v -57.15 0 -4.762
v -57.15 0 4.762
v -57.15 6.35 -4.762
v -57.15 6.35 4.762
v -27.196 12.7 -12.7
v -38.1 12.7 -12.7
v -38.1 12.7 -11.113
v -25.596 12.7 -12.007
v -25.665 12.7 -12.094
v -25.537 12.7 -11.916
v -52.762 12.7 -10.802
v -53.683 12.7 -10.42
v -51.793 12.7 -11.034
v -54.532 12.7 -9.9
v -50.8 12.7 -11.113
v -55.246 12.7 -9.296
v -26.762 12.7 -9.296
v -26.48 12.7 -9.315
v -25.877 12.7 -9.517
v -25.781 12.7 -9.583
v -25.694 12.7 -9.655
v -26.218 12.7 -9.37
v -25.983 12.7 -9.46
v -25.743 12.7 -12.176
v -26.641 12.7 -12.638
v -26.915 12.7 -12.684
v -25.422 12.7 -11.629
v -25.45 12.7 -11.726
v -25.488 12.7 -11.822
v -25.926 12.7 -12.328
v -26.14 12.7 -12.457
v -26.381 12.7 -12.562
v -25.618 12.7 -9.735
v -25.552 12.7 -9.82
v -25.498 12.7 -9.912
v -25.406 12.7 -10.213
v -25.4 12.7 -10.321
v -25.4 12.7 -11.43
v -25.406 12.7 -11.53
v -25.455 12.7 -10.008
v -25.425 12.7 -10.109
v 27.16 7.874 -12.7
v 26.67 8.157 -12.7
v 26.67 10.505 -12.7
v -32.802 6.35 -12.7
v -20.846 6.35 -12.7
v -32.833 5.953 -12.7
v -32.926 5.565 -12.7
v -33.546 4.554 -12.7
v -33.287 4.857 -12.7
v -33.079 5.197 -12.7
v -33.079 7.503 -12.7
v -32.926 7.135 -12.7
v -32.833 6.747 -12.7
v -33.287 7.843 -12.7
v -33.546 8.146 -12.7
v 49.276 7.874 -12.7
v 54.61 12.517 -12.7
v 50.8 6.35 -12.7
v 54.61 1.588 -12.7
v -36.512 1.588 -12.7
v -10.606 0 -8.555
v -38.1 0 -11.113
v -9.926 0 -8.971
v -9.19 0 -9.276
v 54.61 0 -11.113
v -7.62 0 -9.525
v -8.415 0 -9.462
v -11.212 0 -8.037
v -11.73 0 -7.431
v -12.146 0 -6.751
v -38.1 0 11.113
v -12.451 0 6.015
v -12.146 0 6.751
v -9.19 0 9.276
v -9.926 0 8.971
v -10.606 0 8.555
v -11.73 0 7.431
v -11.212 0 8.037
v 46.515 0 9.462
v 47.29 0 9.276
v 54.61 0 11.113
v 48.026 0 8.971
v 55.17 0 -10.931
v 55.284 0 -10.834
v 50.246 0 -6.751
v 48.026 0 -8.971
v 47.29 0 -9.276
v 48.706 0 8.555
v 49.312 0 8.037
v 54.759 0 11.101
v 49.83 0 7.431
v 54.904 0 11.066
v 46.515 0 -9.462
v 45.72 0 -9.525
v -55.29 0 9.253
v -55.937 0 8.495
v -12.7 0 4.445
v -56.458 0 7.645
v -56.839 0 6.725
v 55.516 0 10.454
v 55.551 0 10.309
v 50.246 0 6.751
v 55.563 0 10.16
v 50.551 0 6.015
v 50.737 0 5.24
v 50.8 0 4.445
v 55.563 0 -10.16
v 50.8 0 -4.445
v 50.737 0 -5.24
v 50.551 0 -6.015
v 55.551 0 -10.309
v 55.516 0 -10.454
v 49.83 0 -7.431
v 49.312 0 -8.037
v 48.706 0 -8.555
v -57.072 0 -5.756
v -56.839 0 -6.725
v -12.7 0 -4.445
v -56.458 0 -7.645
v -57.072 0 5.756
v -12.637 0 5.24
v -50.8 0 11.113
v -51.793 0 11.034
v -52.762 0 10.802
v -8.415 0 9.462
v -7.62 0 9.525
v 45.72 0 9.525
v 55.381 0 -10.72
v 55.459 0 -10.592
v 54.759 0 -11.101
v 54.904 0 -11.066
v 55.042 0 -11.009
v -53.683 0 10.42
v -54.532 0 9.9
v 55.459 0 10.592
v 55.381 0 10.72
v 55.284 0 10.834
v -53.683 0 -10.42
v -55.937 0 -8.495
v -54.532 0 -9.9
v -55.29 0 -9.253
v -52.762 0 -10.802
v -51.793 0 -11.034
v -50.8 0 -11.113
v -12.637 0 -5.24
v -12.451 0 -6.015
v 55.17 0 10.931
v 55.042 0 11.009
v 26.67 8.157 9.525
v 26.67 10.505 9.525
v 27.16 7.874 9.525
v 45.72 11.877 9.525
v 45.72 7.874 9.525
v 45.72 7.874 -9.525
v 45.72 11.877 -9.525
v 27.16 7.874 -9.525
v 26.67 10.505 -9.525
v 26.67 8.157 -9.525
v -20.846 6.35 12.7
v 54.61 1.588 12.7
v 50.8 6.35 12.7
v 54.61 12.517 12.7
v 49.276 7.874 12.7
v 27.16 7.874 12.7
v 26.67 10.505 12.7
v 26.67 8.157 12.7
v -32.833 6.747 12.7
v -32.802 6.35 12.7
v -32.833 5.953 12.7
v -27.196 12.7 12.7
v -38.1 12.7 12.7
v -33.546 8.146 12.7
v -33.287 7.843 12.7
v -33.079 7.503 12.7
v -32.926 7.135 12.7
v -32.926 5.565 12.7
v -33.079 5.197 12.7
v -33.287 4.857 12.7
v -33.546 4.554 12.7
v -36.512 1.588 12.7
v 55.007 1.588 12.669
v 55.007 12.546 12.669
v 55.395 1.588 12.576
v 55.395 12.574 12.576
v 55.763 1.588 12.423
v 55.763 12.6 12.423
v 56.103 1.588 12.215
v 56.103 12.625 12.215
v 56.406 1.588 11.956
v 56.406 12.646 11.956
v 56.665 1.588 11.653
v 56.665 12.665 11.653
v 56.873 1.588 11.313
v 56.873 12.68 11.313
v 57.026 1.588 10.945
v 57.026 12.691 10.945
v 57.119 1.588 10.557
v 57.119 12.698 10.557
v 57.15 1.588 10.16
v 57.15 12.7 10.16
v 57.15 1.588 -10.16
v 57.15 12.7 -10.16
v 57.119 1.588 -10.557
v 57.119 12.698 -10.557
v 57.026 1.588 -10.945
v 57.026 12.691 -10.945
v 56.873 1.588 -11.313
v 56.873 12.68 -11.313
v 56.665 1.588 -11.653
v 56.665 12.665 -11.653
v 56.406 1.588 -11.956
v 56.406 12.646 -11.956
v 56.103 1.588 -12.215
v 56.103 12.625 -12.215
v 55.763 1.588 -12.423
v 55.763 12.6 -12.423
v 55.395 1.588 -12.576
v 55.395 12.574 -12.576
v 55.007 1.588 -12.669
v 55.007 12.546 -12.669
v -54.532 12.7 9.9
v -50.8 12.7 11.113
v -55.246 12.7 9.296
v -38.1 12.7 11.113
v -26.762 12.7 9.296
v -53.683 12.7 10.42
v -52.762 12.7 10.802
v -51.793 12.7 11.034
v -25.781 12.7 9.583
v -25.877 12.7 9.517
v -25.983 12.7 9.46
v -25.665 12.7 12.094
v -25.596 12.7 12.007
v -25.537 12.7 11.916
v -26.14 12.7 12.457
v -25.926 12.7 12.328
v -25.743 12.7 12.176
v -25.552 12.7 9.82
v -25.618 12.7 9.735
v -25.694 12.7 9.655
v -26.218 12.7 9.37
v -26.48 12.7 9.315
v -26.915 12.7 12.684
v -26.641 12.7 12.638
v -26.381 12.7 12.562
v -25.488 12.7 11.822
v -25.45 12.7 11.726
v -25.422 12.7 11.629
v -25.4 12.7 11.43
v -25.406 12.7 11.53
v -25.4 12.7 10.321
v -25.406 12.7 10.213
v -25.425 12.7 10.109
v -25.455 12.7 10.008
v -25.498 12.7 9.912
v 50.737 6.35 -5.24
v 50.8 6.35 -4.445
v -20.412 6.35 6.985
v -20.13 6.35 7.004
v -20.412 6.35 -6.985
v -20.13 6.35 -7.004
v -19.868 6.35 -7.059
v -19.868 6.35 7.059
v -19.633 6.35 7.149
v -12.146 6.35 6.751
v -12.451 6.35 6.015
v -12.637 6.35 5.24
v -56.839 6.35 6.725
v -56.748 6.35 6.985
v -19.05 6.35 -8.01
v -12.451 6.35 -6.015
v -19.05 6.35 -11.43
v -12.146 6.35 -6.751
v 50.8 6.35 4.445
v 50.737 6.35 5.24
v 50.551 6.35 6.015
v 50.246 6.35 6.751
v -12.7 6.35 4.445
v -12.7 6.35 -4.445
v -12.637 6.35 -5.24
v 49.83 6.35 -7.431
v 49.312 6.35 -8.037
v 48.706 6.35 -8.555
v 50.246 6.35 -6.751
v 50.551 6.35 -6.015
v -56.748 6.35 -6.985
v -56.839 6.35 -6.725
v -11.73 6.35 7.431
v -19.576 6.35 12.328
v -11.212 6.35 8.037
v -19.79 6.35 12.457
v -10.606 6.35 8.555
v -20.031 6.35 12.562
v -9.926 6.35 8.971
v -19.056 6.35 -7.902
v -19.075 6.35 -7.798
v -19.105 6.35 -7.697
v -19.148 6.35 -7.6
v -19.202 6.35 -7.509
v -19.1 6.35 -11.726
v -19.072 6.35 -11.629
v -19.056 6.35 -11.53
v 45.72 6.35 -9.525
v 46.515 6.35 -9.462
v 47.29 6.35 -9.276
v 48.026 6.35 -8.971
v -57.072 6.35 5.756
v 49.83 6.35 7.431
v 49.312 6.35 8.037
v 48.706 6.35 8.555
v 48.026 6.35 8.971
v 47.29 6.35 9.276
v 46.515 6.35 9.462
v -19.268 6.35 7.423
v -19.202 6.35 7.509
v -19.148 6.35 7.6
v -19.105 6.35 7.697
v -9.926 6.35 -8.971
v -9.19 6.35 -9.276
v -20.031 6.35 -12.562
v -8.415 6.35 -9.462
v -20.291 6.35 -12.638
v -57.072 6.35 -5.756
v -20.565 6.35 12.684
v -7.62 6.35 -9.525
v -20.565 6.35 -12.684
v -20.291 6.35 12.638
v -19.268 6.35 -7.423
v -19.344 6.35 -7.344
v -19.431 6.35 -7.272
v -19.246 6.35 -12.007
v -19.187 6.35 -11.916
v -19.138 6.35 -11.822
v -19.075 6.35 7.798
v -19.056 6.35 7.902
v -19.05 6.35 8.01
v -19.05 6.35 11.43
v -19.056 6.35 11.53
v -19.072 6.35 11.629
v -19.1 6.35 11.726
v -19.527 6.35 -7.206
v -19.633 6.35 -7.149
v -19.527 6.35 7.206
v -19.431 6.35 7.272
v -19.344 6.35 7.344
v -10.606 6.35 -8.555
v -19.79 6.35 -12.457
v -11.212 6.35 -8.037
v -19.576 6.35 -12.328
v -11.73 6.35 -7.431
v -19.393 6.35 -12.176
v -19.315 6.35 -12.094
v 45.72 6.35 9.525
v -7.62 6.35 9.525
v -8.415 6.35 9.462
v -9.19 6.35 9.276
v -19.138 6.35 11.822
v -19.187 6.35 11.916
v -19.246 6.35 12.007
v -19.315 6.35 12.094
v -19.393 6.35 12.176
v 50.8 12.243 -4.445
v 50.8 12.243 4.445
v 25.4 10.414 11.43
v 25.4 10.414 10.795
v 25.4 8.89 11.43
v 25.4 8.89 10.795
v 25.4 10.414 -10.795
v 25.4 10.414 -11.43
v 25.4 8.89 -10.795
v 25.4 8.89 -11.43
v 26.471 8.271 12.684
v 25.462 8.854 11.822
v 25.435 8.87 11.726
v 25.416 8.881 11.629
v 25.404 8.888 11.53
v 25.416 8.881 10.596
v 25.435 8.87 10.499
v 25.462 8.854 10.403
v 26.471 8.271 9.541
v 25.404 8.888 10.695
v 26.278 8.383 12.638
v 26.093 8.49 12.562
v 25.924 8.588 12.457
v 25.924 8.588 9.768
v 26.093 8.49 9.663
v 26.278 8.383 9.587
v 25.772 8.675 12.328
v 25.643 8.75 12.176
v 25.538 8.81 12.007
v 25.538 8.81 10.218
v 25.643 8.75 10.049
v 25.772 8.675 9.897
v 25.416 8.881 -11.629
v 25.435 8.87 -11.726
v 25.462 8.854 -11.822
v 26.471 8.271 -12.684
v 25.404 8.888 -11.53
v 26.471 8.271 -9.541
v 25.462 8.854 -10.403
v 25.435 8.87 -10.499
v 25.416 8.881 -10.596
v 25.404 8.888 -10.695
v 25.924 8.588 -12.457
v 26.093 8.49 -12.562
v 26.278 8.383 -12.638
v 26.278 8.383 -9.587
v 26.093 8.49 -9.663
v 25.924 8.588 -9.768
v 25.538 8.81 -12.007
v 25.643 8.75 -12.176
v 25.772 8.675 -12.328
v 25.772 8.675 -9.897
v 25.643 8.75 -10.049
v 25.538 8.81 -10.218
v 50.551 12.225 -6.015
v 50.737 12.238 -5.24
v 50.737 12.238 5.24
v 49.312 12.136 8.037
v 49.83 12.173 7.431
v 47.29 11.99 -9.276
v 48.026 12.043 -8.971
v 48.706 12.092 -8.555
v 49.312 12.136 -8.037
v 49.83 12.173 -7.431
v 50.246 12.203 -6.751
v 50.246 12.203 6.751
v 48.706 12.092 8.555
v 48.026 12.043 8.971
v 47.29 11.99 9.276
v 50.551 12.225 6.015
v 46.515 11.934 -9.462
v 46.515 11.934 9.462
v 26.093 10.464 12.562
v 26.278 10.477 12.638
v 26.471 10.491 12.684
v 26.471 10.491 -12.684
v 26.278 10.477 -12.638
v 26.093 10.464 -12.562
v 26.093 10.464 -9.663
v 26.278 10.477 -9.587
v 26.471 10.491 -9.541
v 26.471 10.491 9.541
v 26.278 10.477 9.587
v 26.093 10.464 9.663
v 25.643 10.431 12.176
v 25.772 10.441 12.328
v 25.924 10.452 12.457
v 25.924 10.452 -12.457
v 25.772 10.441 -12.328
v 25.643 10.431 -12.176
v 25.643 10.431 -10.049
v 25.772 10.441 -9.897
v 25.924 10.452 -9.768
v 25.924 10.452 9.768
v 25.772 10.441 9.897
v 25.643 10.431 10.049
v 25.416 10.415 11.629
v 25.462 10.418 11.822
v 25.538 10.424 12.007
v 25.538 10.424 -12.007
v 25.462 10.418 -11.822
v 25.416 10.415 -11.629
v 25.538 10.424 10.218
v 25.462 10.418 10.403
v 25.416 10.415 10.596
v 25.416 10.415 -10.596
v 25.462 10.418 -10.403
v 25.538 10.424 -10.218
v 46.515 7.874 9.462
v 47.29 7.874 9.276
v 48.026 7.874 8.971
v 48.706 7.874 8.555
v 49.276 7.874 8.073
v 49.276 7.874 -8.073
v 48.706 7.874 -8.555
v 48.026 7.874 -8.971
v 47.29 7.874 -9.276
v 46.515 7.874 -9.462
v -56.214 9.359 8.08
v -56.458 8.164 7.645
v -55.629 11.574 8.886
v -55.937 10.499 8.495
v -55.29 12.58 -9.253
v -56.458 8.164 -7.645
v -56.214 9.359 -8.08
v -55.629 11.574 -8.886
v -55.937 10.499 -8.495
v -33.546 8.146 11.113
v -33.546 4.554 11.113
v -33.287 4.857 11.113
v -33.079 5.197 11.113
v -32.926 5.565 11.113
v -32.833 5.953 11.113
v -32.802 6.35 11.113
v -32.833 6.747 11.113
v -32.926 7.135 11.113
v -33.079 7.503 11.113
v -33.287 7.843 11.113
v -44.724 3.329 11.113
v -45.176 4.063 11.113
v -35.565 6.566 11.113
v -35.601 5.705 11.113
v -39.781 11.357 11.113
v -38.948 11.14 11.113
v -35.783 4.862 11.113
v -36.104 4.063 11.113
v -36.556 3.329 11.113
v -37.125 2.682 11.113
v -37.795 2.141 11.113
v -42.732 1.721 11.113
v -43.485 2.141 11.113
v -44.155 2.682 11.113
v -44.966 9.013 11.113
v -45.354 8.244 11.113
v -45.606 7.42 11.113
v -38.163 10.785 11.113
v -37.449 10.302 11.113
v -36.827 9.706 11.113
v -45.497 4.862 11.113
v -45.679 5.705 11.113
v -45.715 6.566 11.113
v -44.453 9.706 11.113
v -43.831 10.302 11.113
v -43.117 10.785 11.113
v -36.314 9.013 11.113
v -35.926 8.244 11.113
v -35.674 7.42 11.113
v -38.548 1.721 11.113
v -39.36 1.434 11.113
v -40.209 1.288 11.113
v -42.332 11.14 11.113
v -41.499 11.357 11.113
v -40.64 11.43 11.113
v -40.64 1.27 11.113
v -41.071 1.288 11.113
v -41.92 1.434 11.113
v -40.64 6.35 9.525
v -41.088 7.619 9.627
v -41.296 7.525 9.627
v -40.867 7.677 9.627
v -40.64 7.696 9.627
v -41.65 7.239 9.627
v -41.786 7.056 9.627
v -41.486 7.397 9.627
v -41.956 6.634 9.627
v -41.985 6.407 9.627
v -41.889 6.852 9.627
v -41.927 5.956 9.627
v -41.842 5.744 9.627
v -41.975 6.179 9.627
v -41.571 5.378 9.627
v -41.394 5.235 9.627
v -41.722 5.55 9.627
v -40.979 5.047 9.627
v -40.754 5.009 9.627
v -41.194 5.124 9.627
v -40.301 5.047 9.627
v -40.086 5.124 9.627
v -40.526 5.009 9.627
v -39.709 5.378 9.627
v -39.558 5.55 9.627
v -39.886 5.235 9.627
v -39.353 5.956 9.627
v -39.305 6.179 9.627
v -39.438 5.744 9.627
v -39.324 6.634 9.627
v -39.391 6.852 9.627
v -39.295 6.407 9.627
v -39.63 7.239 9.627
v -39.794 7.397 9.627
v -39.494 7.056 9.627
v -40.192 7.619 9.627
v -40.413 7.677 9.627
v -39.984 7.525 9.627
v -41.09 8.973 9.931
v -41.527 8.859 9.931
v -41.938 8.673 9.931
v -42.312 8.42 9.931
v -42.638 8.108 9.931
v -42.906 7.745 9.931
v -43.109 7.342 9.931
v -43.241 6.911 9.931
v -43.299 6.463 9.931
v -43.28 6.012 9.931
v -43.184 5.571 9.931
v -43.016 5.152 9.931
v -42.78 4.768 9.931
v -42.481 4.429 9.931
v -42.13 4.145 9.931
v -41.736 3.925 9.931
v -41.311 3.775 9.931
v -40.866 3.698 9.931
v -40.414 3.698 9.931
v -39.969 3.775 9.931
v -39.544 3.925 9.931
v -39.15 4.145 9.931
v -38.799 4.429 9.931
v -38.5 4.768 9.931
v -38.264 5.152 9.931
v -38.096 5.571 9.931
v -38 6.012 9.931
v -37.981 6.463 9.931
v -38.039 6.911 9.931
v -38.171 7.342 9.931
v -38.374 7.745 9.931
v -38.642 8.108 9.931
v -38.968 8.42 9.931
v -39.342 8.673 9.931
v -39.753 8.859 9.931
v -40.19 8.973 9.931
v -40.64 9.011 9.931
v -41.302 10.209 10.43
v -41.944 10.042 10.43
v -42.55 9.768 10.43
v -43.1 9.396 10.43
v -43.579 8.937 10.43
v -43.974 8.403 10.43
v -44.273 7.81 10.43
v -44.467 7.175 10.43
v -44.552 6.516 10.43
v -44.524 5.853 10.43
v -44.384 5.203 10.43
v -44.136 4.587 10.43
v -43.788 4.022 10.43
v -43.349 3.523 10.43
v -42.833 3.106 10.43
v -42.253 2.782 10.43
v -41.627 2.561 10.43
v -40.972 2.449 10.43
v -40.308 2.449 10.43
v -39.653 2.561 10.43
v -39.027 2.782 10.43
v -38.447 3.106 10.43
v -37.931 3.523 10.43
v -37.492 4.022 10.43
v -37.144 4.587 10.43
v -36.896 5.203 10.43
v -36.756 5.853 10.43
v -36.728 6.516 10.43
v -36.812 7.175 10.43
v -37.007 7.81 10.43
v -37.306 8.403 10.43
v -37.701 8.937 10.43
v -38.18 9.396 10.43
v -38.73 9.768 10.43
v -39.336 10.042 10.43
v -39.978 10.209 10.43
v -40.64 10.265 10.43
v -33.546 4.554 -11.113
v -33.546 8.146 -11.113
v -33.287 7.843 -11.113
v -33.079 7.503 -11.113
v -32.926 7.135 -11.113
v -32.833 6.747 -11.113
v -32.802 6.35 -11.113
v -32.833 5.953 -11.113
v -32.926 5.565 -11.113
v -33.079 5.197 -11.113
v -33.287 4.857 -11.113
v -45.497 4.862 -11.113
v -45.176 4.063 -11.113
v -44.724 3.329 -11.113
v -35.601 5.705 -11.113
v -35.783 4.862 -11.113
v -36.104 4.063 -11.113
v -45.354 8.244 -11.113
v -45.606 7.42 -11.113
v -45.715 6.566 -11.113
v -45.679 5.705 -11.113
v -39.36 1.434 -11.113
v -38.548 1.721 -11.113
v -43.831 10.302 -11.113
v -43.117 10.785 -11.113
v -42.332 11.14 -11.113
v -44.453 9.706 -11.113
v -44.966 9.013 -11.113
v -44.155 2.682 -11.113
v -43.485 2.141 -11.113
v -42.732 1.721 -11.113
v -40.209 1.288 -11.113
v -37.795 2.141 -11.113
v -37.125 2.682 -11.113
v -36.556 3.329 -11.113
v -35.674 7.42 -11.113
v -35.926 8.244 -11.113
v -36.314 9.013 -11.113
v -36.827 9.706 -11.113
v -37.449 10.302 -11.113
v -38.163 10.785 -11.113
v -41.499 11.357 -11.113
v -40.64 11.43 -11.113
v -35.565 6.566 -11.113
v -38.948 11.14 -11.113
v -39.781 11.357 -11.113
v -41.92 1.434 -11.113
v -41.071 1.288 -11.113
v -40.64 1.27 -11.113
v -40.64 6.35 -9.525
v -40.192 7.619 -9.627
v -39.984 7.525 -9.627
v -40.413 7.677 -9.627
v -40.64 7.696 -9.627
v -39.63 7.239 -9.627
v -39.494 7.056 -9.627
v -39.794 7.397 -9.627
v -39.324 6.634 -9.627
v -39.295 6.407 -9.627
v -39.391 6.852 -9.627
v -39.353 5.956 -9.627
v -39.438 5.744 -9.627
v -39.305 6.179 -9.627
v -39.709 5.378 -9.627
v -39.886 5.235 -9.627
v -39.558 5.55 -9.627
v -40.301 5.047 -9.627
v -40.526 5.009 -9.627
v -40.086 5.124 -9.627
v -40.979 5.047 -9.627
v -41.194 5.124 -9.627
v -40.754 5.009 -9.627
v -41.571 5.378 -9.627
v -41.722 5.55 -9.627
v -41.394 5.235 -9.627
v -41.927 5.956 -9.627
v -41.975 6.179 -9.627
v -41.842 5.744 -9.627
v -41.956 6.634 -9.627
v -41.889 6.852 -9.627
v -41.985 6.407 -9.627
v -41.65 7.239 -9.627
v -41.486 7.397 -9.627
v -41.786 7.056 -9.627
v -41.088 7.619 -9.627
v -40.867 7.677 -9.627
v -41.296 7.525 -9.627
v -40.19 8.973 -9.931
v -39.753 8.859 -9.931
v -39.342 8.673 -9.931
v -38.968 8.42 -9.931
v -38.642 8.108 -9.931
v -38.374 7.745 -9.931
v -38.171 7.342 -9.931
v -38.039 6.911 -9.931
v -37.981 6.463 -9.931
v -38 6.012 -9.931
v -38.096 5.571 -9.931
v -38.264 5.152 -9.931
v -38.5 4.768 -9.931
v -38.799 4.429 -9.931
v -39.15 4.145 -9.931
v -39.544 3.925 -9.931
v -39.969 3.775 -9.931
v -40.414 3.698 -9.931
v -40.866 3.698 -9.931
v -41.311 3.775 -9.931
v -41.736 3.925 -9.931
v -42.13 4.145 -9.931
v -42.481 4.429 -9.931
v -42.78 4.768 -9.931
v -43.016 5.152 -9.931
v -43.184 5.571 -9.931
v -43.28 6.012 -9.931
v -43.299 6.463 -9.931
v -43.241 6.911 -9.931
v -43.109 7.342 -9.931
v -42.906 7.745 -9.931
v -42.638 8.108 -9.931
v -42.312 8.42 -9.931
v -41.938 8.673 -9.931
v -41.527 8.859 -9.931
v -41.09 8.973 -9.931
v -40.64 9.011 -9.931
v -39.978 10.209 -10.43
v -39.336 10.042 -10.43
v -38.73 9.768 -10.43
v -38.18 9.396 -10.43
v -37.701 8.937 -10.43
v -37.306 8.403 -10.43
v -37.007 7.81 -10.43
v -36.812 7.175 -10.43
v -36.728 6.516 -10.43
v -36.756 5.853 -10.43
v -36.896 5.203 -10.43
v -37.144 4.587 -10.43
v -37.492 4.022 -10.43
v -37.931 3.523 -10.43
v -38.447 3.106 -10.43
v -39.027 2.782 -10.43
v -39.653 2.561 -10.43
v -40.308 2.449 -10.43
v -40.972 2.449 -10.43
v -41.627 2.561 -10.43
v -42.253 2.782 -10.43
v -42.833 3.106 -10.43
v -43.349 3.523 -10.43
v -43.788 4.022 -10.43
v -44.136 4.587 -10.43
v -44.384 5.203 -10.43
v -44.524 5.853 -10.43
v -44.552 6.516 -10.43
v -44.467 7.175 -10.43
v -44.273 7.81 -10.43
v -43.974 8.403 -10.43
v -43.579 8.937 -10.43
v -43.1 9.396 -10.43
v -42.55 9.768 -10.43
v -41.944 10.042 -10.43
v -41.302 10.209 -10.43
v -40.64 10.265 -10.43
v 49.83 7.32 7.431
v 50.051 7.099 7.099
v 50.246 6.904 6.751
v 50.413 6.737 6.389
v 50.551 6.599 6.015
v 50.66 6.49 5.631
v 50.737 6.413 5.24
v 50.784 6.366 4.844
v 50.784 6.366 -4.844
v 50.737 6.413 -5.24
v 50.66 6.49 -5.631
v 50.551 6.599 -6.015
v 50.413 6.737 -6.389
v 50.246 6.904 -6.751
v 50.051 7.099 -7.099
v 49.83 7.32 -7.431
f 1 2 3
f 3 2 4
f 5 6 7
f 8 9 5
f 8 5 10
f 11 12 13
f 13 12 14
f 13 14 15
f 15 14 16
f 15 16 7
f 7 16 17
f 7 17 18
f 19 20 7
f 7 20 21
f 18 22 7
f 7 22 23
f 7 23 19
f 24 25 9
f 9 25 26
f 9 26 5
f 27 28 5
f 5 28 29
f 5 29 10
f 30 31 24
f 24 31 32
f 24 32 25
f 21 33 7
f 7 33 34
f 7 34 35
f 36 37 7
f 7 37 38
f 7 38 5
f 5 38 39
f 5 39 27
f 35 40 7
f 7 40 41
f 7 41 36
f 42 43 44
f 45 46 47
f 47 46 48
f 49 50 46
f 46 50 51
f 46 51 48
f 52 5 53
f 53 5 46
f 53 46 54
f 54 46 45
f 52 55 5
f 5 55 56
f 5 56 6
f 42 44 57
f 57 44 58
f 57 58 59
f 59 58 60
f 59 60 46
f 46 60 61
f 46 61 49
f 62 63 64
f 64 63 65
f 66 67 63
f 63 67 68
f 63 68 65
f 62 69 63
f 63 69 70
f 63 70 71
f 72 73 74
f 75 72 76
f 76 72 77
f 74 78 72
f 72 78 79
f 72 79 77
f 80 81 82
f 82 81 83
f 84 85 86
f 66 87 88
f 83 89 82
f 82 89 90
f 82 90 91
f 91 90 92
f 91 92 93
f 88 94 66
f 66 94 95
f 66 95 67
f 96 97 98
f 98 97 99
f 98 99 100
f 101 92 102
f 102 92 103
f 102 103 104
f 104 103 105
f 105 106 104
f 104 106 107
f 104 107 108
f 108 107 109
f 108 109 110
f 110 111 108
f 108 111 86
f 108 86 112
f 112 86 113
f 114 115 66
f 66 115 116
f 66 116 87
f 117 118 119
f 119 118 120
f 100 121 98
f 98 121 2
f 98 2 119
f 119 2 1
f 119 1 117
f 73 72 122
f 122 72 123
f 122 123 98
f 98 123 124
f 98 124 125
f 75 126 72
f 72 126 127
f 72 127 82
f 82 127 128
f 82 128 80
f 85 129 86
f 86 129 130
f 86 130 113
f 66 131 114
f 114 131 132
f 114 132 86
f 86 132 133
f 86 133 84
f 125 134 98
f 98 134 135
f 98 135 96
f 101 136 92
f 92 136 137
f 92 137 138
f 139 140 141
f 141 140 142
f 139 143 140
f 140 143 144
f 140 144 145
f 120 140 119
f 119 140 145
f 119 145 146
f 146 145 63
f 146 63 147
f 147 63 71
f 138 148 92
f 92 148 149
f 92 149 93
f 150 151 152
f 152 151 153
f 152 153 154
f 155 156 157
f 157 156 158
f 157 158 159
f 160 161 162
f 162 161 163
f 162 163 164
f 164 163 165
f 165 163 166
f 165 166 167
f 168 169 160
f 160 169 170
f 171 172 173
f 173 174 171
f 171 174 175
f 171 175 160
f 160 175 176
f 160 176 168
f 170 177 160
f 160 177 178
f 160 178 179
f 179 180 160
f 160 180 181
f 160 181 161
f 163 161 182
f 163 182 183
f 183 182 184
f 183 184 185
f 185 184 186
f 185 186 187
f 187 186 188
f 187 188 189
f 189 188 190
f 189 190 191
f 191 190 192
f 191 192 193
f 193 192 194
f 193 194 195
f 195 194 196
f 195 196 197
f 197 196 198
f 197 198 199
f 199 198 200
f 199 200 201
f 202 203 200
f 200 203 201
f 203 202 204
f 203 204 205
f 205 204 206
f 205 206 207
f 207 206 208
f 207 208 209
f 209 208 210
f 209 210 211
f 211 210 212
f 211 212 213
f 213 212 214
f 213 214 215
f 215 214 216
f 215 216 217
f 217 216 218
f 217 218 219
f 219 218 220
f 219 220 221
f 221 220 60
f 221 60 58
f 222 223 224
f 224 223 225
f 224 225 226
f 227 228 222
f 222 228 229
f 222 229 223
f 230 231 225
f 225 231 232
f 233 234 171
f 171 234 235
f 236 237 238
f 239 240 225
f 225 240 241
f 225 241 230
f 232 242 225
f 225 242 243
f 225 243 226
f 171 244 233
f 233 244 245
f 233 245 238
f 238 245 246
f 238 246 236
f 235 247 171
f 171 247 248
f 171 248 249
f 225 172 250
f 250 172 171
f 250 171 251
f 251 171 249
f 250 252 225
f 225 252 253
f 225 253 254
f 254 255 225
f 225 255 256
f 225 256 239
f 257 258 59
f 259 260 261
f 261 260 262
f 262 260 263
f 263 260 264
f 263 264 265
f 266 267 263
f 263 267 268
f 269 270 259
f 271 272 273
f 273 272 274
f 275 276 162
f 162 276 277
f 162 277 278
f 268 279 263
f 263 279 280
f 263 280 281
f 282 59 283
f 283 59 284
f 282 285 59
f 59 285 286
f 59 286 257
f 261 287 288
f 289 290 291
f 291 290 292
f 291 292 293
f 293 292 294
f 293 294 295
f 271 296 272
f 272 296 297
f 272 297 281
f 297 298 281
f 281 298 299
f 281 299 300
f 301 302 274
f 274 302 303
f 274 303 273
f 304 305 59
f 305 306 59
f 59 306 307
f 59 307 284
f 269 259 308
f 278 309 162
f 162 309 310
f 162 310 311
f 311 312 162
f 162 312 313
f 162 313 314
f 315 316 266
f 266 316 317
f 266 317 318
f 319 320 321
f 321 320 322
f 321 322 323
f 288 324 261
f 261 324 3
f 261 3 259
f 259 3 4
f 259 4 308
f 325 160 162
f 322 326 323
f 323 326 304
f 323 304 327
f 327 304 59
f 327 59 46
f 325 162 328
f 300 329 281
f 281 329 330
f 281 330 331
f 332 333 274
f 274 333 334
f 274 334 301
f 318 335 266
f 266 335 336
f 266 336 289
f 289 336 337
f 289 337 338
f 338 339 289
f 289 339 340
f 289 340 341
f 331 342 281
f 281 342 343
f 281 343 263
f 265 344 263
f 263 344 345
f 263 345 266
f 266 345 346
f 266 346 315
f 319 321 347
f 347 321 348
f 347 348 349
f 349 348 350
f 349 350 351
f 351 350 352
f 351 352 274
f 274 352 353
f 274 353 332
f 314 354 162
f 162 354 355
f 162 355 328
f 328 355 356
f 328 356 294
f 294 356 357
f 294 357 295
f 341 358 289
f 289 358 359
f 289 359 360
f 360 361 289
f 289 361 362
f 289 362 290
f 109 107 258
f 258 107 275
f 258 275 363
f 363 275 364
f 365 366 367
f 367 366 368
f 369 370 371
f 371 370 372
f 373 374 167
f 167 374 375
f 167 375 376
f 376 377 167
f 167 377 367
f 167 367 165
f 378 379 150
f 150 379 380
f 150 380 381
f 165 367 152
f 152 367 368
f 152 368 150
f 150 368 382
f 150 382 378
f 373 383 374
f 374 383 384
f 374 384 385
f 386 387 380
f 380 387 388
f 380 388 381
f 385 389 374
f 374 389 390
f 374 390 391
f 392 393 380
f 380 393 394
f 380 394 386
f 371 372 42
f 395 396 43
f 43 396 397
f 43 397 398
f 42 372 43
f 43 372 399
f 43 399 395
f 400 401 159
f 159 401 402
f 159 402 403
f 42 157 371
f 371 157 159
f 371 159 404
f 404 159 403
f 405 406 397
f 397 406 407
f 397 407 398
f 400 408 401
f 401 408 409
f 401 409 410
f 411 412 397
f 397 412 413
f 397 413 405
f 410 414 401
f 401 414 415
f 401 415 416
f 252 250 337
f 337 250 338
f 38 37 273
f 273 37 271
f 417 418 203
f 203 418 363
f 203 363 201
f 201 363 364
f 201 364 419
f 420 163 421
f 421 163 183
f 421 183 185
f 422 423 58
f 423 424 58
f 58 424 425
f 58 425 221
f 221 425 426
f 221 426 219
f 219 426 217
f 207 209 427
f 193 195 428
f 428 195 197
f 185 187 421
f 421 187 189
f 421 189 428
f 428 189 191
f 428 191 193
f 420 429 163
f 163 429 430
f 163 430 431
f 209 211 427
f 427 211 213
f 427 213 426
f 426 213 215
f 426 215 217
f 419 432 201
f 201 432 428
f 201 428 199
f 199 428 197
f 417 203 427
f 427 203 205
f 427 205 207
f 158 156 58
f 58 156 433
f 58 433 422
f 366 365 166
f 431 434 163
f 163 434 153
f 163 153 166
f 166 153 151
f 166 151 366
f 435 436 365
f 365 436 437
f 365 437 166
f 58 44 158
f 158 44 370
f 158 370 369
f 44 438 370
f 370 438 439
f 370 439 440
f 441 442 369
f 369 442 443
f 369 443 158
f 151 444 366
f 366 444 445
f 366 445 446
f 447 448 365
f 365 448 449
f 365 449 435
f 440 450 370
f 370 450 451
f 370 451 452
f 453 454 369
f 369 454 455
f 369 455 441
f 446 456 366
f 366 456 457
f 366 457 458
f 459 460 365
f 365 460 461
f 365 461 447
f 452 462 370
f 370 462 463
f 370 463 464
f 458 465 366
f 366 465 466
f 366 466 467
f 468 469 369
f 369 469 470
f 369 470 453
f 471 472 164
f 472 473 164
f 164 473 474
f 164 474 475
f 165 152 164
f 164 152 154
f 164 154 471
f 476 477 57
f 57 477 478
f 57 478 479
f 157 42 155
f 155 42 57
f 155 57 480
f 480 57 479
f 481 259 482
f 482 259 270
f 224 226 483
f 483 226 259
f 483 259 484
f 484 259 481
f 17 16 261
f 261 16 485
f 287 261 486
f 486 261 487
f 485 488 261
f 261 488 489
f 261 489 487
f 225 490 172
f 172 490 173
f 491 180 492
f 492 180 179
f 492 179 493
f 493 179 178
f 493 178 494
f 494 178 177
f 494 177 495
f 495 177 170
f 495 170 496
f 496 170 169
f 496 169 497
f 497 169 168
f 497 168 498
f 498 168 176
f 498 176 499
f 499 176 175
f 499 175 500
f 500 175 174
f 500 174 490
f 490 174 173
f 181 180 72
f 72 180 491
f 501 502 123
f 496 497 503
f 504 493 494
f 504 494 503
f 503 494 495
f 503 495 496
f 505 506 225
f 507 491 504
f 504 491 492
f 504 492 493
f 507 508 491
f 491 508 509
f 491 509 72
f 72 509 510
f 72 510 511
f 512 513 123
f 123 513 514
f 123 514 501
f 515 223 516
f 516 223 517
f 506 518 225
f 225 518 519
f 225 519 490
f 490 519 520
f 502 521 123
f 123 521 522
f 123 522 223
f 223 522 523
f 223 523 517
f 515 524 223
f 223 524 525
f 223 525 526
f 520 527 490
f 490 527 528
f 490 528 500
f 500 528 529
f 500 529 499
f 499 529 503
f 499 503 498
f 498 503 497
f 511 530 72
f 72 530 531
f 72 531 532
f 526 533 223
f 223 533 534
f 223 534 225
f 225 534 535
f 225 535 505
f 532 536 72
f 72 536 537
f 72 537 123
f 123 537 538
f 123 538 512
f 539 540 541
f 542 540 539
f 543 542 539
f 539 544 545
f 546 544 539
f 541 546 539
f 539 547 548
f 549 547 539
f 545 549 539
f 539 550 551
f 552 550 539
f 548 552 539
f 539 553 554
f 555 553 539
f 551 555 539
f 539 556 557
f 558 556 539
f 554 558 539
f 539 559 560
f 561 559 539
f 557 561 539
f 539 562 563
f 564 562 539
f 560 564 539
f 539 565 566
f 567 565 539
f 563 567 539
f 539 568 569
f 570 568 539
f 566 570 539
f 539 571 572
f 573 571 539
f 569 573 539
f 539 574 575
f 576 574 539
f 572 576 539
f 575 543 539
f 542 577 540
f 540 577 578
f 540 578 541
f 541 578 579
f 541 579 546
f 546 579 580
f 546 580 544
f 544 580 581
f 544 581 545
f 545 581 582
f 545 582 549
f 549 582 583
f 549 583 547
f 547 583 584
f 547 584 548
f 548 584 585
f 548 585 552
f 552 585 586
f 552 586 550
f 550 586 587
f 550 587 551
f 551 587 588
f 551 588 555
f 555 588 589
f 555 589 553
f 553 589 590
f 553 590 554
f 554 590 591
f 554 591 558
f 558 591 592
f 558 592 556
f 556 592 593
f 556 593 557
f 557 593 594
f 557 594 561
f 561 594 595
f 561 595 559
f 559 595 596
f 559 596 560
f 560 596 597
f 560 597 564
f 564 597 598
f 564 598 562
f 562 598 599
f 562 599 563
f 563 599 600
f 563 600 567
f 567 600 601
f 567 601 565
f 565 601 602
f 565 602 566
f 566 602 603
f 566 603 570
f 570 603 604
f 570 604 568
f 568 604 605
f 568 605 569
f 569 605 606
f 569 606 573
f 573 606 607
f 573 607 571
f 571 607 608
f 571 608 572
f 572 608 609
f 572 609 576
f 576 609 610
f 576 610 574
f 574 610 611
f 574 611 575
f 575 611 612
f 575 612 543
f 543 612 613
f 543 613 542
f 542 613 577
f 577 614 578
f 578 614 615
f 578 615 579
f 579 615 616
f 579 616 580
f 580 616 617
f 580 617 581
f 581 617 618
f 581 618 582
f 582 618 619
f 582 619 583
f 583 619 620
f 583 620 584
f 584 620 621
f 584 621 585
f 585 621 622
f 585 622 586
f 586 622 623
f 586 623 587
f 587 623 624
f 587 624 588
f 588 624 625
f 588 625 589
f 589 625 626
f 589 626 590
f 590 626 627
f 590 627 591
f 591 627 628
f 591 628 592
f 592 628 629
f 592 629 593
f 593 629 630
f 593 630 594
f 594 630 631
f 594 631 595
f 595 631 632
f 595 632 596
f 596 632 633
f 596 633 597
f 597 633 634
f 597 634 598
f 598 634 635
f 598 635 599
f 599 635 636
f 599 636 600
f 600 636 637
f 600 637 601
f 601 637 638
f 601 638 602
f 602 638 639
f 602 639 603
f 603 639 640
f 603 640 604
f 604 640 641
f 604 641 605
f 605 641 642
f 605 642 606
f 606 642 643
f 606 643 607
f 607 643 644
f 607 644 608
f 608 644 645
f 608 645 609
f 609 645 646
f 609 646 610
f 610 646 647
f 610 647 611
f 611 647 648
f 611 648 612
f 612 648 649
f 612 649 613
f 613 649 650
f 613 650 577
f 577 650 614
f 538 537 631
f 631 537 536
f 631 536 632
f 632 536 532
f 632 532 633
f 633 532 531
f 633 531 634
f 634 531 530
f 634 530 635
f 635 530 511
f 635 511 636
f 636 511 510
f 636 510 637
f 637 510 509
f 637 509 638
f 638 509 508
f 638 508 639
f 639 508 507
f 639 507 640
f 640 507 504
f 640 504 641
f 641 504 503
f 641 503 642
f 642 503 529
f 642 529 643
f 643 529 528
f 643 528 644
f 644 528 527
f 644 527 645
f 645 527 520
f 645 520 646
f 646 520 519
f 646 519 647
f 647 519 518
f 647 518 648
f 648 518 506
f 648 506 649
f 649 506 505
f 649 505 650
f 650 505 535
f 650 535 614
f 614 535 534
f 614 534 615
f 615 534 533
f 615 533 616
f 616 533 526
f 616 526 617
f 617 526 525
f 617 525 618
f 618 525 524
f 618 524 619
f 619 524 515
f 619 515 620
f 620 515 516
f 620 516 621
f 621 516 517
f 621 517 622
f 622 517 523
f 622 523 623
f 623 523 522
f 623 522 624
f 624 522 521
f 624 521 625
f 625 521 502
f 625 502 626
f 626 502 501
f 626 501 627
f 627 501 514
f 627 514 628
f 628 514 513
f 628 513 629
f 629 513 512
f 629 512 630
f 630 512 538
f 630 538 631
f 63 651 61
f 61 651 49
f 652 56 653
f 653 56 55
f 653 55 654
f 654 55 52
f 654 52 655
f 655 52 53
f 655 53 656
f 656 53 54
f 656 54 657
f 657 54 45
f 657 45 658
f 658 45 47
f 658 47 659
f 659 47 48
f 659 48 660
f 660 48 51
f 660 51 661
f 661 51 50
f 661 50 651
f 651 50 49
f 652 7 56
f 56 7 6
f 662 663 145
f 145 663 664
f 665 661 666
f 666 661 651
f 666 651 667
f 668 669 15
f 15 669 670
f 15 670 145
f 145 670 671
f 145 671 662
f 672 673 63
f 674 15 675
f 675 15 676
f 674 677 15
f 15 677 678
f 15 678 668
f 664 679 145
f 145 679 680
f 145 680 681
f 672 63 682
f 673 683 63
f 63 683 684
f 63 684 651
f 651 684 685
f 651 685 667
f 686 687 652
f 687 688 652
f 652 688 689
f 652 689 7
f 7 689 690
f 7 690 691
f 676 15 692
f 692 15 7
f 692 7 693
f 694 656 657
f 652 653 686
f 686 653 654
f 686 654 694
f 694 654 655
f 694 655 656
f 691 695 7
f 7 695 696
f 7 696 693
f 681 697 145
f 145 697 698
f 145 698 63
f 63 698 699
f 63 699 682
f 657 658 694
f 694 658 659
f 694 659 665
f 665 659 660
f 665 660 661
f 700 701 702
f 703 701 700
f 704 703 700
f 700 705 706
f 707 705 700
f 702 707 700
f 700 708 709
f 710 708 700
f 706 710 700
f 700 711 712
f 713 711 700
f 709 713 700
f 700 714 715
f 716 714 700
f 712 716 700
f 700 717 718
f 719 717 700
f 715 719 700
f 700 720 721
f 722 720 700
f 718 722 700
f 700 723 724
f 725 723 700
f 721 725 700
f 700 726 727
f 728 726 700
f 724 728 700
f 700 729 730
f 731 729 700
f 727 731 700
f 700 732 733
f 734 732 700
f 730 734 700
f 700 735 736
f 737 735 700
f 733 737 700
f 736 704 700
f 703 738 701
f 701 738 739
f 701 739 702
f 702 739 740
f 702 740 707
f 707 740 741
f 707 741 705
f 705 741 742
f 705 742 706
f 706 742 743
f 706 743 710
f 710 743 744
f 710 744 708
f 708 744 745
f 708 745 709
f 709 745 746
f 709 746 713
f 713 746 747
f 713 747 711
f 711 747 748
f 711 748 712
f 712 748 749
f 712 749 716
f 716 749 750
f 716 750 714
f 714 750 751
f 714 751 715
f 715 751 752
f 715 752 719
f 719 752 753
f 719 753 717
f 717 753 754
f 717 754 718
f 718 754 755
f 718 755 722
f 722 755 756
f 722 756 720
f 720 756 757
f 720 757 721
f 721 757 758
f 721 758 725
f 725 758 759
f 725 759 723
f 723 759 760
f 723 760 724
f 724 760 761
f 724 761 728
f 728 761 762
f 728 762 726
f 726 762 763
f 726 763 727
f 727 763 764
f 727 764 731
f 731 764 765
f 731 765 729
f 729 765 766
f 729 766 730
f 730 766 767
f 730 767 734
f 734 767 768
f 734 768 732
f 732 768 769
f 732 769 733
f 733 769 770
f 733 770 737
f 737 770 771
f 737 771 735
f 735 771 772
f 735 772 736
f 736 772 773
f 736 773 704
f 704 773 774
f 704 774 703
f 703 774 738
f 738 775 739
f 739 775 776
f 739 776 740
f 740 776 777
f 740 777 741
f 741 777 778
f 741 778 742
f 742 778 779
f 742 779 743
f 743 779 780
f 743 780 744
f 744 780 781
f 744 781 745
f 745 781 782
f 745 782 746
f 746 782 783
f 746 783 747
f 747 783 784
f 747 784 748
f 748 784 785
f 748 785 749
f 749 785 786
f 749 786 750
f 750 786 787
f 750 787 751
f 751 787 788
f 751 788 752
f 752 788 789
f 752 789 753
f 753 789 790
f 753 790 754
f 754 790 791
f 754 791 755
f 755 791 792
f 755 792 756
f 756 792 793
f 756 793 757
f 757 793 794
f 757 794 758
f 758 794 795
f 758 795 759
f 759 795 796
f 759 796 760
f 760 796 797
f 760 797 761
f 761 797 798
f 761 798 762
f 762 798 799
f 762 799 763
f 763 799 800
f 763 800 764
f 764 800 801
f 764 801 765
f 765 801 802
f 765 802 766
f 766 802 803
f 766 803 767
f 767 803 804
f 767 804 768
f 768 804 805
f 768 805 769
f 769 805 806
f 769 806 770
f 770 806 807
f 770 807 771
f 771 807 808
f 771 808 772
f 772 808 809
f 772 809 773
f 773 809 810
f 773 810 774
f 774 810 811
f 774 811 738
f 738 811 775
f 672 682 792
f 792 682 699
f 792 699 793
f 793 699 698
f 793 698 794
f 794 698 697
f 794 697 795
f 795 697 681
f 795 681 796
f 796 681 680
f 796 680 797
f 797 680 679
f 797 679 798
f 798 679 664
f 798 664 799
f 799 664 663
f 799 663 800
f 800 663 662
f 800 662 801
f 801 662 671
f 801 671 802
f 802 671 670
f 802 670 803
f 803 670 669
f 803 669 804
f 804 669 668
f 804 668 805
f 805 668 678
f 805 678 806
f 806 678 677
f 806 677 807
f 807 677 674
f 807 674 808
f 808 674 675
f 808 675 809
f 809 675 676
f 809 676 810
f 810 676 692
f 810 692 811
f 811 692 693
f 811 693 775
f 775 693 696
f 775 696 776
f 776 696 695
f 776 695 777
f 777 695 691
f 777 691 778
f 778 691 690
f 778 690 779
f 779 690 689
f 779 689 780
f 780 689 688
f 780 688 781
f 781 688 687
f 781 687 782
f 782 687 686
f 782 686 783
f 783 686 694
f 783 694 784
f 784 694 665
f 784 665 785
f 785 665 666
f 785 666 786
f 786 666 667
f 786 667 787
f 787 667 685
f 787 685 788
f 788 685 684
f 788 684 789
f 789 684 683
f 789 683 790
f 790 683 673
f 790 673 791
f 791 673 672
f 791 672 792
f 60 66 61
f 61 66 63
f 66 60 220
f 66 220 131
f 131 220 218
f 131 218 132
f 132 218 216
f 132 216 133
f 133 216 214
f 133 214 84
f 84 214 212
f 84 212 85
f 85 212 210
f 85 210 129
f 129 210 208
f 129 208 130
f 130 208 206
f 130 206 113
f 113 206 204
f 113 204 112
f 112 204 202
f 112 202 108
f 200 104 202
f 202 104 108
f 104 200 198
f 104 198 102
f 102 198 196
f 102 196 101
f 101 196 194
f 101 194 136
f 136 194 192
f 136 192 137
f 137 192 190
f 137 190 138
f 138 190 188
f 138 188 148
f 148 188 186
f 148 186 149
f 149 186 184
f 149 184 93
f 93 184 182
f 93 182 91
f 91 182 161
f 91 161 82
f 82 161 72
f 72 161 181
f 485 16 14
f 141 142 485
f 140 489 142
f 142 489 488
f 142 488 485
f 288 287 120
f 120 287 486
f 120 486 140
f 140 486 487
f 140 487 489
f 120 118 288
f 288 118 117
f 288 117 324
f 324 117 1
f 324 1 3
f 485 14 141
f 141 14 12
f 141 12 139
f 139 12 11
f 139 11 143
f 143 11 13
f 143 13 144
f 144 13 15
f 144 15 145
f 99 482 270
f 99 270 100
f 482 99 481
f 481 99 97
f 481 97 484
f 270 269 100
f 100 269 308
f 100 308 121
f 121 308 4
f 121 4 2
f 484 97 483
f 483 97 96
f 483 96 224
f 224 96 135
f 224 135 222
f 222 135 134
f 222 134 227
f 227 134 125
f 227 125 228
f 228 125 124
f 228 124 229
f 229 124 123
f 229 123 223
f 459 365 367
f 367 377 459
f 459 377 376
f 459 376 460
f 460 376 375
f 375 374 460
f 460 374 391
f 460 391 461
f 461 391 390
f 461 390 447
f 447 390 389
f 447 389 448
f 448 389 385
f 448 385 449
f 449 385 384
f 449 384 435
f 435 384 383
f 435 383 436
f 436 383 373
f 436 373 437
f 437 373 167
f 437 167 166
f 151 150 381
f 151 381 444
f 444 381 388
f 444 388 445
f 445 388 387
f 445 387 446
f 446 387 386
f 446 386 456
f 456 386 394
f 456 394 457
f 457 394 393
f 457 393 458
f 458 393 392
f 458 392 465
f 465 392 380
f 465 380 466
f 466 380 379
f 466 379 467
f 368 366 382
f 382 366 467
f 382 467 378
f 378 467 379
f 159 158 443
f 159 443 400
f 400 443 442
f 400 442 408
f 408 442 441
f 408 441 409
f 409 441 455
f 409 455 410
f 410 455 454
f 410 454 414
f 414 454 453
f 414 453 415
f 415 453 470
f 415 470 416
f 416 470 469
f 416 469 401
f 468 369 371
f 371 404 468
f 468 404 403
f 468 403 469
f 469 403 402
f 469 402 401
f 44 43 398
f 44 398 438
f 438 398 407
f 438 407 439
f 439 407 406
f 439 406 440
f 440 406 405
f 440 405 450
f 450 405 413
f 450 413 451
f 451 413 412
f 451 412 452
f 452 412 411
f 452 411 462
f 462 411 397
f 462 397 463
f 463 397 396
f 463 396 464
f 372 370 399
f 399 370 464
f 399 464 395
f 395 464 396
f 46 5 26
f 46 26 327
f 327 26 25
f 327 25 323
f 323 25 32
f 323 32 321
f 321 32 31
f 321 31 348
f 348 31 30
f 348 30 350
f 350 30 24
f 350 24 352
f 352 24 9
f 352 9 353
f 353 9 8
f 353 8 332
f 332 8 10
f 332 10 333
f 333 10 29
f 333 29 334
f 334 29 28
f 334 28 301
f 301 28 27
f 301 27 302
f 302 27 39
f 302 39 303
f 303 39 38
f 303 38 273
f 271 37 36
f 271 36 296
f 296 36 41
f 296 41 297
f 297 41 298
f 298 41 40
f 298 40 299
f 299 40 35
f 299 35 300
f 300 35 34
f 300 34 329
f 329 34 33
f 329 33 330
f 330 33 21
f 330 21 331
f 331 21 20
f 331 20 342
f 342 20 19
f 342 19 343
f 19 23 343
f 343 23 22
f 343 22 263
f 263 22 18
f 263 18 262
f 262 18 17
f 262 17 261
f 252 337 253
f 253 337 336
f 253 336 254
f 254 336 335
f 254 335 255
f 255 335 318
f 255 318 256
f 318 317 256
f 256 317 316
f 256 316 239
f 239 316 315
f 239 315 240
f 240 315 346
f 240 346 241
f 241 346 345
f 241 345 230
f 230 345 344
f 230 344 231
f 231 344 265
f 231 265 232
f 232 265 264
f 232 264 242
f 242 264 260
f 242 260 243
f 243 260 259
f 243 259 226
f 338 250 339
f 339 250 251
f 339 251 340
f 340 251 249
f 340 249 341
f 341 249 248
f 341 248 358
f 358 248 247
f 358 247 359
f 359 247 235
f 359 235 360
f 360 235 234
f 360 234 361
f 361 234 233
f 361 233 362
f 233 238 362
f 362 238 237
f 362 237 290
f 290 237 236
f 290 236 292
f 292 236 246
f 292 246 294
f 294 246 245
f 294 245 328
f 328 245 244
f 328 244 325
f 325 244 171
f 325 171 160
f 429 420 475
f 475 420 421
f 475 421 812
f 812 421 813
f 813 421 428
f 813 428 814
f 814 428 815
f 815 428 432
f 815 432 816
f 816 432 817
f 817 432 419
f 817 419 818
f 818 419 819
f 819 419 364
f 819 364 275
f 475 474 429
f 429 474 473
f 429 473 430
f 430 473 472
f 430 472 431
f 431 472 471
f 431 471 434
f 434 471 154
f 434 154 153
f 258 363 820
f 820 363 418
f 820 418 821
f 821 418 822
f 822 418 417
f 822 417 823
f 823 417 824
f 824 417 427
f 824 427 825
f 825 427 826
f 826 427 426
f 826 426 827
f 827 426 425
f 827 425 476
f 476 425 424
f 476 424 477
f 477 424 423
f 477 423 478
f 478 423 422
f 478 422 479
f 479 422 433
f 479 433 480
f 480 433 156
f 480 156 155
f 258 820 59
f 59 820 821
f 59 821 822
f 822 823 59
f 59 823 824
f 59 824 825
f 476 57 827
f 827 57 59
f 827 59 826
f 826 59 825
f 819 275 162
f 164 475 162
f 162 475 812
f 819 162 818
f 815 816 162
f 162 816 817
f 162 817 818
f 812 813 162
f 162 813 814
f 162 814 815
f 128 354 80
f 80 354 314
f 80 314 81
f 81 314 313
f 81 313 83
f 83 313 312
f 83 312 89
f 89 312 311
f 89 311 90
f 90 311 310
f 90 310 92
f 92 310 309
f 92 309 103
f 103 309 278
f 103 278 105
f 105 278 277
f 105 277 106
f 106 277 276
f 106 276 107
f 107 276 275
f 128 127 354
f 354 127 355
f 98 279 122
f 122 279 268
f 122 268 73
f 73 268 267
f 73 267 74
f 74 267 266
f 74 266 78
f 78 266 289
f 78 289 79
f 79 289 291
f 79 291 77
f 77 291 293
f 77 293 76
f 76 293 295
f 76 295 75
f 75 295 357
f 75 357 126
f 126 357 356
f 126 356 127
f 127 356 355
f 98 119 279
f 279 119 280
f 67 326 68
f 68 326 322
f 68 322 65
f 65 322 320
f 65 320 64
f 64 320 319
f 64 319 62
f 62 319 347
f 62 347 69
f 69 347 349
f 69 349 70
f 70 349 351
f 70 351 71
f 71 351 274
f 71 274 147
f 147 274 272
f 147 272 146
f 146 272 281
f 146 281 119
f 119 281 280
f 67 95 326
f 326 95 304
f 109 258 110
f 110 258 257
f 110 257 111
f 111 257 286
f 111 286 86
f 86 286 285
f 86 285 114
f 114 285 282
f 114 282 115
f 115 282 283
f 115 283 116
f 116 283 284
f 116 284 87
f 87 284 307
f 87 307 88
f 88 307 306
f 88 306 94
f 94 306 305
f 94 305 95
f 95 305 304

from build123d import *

# Parameters (mm, degrees)
BOSS_EXTRUDE1_DEPTH = 12.7
SKETCH2_W           = 19.05
SKETCH2_H           = 6.35
CUT_EXTRUDE1_DEPTH  = 107.95
CUT_EXTRUDE2_DEPTH  = 64.816710194
CHAMFER1_SIZE       = 6.978592645
CHAMFER1_SIZE_2     = 2.54
CUT_EXTRUDE3_DEPTH  = 1.5875
CHAMFER3_SIZE       = 1.5875
FILLET1_R           = 6.35
FILLET2_R           = 1.27
FILLET3_R           = 5.08
CHAMFER4_SIZE       = 1.524
CUT_EXTRUDE4_DEPTH  = 59.887477446


# Some blends are built 0.0001 mm under size
with BuildPart() as part:
    # Sketch1 → Boss-Extrude1 (new body)
    with BuildSketch(Plane(origin=(0, 0, 0), x_dir=(1, 0, 0), z_dir=(0, 1, 0))):
        with BuildLine():
            Line((-50.8, 12.7), (-57.15, 12.7))
            Line((-57.15, 12.7), (-57.15, 6.35))
            Line((-57.15, 6.35), (-57.15, -6.35))
            Line((-57.15, -6.35), (-57.15, -12.7))
            Line((-57.15, -12.7), (-50.8, -12.7))
            Line((-50.8, -12.7), (54.61, -12.7))
            ThreePointArc((54.61, -12.7), (56.406051224, -11.956051224), (57.15, -10.16))
            Line((57.15, -10.16), (57.15, 10.16))
            ThreePointArc((57.15, 10.16), (56.406051224, 11.956051224), (54.61, 12.7))
            Line((54.61, 12.7), (-50.8, 12.7))
        make_face()
    extrude(amount=BOSS_EXTRUDE1_DEPTH)

    # Sketch2 → Cut-Extrude1 (cut)
    with BuildSketch(Plane.ZY.offset(57.15)):
        with Locations((0, 9.525)):
            Rectangle(SKETCH2_W, SKETCH2_H)
    extrude(amount=-CUT_EXTRUDE1_DEPTH, mode=Mode.SUBTRACT)

    # Sketch3 → Cut-Extrude2 (cut, through all)
    with BuildSketch(Plane.XY.offset(12.7)):
        Polygon((25.4, 10.414), (57.15, 12.7), (-25.4, 12.7), (-19.05, 6.35), (50.8, 6.35), (50.8, 7.874), (27.15976362, 7.874), (25.4, 8.89), align=None)
    extrude(amount=-CUT_EXTRUDE2_DEPTH, mode=Mode.SUBTRACT)

    # Chamfer1
    # the kernel refuses this chamfer: 6.978592645, 2.54 mm, written as the material it adds along each edge
    with BuildSketch(Plane(origin=(-57.15, 6.35, 9.525), x_dir=(0, 0.9999130865277316, 0.013184058198642549), z_dir=(1, 0, 0))) as chamfer1_piece_1_section:
        Polygon((CHAMFER1_SIZE * 0.999913086587, -CHAMFER1_SIZE * 0.0131840581994), (-CHAMFER1_SIZE_2 * 0.0131840581987, -CHAMFER1_SIZE_2 * 0.999913086528), (0, 0), align=None)
    chamfer1_piece_1 = extrude(amount=56.203828281, mode=Mode.PRIVATE)
    chamfer1_piece_1 = split(chamfer1_piece_1, bisect_by=Plane(origin=(-39.199121236, 12.7, 8.706690515), z_dir=(0, -1, 0)), keep=Keep.TOP, mode=Mode.PRIVATE)
    chamfer1_piece_1 = split(chamfer1_piece_1, bisect_by=Plane(origin=(-30.223681853, 17.523681853, 8.706690515), z_dir=(-0.7071067811865448, -0.7071067811865503, 0)), keep=Keep.TOP, mode=Mode.PRIVATE)
    add(chamfer1_piece_1)
    with BuildSketch(Plane(origin=(-57.15, 6.35, -9.525), x_dir=(0, -0.09904090225207035, 0.9950833631817466), z_dir=(1, 0, 0))) as chamfer1_piece_2_section:
        Polygon((CHAMFER1_SIZE_2 * 0.995083363182, -CHAMFER1_SIZE_2 * 0.099040902252), (-CHAMFER1_SIZE * 0.099040902258, -CHAMFER1_SIZE * 0.995083363241), (0, 0), align=None)
    chamfer1_piece_2 = extrude(amount=56.203828281, mode=Mode.PRIVATE)
    chamfer1_piece_2 = split(chamfer1_piece_2, bisect_by=Plane(origin=(-30.223681853, 17.523681853, -8.706690515), z_dir=(-0.7071067811865448, -0.7071067811865503, 0)), keep=Keep.TOP, mode=Mode.PRIVATE)
    chamfer1_piece_2 = split(chamfer1_piece_2, bisect_by=Plane(origin=(-39.199121236, 12.7, -8.706690515), z_dir=(0, -1, 0)), keep=Keep.TOP, mode=Mode.PRIVATE)
    add(chamfer1_piece_2)

    # Sketch4 → Cut-Extrude3 (cut)
    with BuildSketch(Plane.XY.offset(12.7)):
        with BuildLine():
            Line((-57.15, 12.7), (-57.15, 0))
            Line((-57.15, 0), (-38.1, 0))
            Line((-38.1, 0), (-33.546051224, 4.553948776))
            ThreePointArc((-33.546051224, 4.553948776), (-32.802102448, 6.35), (-33.546051224, 8.146051224))
            Line((-33.546051224, 8.146051224), (-38.1, 12.7))
            Line((-38.1, 12.7), (-57.15, 12.7))
        make_face()
    cut_extrude3 = extrude(amount=-CUT_EXTRUDE3_DEPTH, mode=Mode.SUBTRACT)

    # Sketch6 → Cut-Revolve1 (revolve, cut)
    with BuildSketch(Plane.ZY.offset(40.64)):
        with BuildLine():
            Line((11.1125, 6.35), (11.1125, 11.43))
            ThreePointArc((11.1125, 11.43), (9.931118256, 9.01113492), (9.525, 6.35))
            Line((9.525, 6.35), (11.1125, 6.35))
        make_face()
    cut_revolve1 = revolve(axis=Axis((-40.64, 6.35, 12.7), (0, 0, -1)), mode=Mode.SUBTRACT)

    # Mirror1: Cut-Extrude3, Cut-Revolve1 across plane
    add(cut_extrude3.mirror(Plane(origin=(0, 0, 0), x_dir=(1, 0, 0), z_dir=(0, 0, -1))), mode=Mode.SUBTRACT)
    add(cut_revolve1.mirror(Plane(origin=(0, 0, 0), x_dir=(1, 0, 0), z_dir=(0, 0, -1))), mode=Mode.SUBTRACT)

    # Chamfer3
    chamfer3_edges = [part.edges().sort_by_distance(p)[0] for p in [
        (8.255, 0, 12.7),
        (56.406051224, 0, 11.956051224),
        (57.15, 0, 0),
        (56.406051224, 0, -11.956051224),
        (8.255, 0, -12.7),
    ]]
    chamfer(chamfer3_edges, length=CHAMFER3_SIZE)

    # Fillet1
    fillet1_edges = [part.edges().sort_by_distance(p)[0] for p in [
        (-57.15, 6.35, -11.1125),
        (-57.15, 6.35, 11.1125),
    ]]
    fillet(fillet1_edges, radius=FILLET1_R)

    # Fillet2
    fillet2_edges = [part.edges().sort_by_distance(p)[0] for p in [
        (-22.225, 9.525, 8.140605494),
        (-22.225, 9.525, -8.140605494),
        (25.4, 9.652, -9.525),
        (-22.225, 9.525, 12.7),
        (25.4, 9.652, 12.7),
        (25.4, 9.652, 9.525),
        (25.4, 9.652, -12.7),
        (-22.225, 9.525, -12.7),
    ]]
    fillet(fillet2_edges, radius=FILLET2_R)

    # Fillet3
    fillet3_edges = [part.edges().sort_by_distance(p)[0] for p in [
        (50.8, 10.0584, -9.525),
        (50.8, 10.0584, 9.525),
    ]]
    fillet(fillet3_edges, radius=FILLET3_R)

    # Chamfer4
    chamfer4_edges = [part.edges().sort_by_distance(p)[0] for p in [
        (50.8, 7.874, -8.5725),
        (50.8, 7.874, 8.5725),
    ]]
    chamfer(chamfer4_edges, length=CHAMFER4_SIZE - 0.0001)  # a hair under: the kernel refuses the full size

    # Sketch7 → Cut-Extrude4 (cut, through all)
    with BuildSketch(Plane(origin=(0, 6.35, 0), x_dir=(1, 0, 0), z_dir=(0, 1, 0))):
        with BuildLine():
            Line((26.67, -9.525), (45.72, -9.525))
            ThreePointArc((45.72, -9.525), (49.312102448, -8.037102448), (50.8, -4.445))
            Line((50.8, -4.445), (50.8, 4.445))
            ThreePointArc((50.8, 4.445), (49.312102448, 8.037102448), (45.72, 9.525))
            Line((45.72, 9.525), (26.67, 9.525))
            Line((26.67, 9.525), (-7.62, 9.525))
            ThreePointArc((-7.62, 9.525), (-11.212102448, 8.037102448), (-12.7, 4.445))
            Line((-12.7, 4.445), (-12.7, -4.445))
            ThreePointArc((-12.7, -4.445), (-11.212102448, -8.037102448), (-7.62, -9.525))
            Line((-7.62, -9.525), (26.67, -9.525))
        make_face()
    extrude(amount=-CUT_EXTRUDE4_DEPTH, mode=Mode.SUBTRACT)


solid = part.part
